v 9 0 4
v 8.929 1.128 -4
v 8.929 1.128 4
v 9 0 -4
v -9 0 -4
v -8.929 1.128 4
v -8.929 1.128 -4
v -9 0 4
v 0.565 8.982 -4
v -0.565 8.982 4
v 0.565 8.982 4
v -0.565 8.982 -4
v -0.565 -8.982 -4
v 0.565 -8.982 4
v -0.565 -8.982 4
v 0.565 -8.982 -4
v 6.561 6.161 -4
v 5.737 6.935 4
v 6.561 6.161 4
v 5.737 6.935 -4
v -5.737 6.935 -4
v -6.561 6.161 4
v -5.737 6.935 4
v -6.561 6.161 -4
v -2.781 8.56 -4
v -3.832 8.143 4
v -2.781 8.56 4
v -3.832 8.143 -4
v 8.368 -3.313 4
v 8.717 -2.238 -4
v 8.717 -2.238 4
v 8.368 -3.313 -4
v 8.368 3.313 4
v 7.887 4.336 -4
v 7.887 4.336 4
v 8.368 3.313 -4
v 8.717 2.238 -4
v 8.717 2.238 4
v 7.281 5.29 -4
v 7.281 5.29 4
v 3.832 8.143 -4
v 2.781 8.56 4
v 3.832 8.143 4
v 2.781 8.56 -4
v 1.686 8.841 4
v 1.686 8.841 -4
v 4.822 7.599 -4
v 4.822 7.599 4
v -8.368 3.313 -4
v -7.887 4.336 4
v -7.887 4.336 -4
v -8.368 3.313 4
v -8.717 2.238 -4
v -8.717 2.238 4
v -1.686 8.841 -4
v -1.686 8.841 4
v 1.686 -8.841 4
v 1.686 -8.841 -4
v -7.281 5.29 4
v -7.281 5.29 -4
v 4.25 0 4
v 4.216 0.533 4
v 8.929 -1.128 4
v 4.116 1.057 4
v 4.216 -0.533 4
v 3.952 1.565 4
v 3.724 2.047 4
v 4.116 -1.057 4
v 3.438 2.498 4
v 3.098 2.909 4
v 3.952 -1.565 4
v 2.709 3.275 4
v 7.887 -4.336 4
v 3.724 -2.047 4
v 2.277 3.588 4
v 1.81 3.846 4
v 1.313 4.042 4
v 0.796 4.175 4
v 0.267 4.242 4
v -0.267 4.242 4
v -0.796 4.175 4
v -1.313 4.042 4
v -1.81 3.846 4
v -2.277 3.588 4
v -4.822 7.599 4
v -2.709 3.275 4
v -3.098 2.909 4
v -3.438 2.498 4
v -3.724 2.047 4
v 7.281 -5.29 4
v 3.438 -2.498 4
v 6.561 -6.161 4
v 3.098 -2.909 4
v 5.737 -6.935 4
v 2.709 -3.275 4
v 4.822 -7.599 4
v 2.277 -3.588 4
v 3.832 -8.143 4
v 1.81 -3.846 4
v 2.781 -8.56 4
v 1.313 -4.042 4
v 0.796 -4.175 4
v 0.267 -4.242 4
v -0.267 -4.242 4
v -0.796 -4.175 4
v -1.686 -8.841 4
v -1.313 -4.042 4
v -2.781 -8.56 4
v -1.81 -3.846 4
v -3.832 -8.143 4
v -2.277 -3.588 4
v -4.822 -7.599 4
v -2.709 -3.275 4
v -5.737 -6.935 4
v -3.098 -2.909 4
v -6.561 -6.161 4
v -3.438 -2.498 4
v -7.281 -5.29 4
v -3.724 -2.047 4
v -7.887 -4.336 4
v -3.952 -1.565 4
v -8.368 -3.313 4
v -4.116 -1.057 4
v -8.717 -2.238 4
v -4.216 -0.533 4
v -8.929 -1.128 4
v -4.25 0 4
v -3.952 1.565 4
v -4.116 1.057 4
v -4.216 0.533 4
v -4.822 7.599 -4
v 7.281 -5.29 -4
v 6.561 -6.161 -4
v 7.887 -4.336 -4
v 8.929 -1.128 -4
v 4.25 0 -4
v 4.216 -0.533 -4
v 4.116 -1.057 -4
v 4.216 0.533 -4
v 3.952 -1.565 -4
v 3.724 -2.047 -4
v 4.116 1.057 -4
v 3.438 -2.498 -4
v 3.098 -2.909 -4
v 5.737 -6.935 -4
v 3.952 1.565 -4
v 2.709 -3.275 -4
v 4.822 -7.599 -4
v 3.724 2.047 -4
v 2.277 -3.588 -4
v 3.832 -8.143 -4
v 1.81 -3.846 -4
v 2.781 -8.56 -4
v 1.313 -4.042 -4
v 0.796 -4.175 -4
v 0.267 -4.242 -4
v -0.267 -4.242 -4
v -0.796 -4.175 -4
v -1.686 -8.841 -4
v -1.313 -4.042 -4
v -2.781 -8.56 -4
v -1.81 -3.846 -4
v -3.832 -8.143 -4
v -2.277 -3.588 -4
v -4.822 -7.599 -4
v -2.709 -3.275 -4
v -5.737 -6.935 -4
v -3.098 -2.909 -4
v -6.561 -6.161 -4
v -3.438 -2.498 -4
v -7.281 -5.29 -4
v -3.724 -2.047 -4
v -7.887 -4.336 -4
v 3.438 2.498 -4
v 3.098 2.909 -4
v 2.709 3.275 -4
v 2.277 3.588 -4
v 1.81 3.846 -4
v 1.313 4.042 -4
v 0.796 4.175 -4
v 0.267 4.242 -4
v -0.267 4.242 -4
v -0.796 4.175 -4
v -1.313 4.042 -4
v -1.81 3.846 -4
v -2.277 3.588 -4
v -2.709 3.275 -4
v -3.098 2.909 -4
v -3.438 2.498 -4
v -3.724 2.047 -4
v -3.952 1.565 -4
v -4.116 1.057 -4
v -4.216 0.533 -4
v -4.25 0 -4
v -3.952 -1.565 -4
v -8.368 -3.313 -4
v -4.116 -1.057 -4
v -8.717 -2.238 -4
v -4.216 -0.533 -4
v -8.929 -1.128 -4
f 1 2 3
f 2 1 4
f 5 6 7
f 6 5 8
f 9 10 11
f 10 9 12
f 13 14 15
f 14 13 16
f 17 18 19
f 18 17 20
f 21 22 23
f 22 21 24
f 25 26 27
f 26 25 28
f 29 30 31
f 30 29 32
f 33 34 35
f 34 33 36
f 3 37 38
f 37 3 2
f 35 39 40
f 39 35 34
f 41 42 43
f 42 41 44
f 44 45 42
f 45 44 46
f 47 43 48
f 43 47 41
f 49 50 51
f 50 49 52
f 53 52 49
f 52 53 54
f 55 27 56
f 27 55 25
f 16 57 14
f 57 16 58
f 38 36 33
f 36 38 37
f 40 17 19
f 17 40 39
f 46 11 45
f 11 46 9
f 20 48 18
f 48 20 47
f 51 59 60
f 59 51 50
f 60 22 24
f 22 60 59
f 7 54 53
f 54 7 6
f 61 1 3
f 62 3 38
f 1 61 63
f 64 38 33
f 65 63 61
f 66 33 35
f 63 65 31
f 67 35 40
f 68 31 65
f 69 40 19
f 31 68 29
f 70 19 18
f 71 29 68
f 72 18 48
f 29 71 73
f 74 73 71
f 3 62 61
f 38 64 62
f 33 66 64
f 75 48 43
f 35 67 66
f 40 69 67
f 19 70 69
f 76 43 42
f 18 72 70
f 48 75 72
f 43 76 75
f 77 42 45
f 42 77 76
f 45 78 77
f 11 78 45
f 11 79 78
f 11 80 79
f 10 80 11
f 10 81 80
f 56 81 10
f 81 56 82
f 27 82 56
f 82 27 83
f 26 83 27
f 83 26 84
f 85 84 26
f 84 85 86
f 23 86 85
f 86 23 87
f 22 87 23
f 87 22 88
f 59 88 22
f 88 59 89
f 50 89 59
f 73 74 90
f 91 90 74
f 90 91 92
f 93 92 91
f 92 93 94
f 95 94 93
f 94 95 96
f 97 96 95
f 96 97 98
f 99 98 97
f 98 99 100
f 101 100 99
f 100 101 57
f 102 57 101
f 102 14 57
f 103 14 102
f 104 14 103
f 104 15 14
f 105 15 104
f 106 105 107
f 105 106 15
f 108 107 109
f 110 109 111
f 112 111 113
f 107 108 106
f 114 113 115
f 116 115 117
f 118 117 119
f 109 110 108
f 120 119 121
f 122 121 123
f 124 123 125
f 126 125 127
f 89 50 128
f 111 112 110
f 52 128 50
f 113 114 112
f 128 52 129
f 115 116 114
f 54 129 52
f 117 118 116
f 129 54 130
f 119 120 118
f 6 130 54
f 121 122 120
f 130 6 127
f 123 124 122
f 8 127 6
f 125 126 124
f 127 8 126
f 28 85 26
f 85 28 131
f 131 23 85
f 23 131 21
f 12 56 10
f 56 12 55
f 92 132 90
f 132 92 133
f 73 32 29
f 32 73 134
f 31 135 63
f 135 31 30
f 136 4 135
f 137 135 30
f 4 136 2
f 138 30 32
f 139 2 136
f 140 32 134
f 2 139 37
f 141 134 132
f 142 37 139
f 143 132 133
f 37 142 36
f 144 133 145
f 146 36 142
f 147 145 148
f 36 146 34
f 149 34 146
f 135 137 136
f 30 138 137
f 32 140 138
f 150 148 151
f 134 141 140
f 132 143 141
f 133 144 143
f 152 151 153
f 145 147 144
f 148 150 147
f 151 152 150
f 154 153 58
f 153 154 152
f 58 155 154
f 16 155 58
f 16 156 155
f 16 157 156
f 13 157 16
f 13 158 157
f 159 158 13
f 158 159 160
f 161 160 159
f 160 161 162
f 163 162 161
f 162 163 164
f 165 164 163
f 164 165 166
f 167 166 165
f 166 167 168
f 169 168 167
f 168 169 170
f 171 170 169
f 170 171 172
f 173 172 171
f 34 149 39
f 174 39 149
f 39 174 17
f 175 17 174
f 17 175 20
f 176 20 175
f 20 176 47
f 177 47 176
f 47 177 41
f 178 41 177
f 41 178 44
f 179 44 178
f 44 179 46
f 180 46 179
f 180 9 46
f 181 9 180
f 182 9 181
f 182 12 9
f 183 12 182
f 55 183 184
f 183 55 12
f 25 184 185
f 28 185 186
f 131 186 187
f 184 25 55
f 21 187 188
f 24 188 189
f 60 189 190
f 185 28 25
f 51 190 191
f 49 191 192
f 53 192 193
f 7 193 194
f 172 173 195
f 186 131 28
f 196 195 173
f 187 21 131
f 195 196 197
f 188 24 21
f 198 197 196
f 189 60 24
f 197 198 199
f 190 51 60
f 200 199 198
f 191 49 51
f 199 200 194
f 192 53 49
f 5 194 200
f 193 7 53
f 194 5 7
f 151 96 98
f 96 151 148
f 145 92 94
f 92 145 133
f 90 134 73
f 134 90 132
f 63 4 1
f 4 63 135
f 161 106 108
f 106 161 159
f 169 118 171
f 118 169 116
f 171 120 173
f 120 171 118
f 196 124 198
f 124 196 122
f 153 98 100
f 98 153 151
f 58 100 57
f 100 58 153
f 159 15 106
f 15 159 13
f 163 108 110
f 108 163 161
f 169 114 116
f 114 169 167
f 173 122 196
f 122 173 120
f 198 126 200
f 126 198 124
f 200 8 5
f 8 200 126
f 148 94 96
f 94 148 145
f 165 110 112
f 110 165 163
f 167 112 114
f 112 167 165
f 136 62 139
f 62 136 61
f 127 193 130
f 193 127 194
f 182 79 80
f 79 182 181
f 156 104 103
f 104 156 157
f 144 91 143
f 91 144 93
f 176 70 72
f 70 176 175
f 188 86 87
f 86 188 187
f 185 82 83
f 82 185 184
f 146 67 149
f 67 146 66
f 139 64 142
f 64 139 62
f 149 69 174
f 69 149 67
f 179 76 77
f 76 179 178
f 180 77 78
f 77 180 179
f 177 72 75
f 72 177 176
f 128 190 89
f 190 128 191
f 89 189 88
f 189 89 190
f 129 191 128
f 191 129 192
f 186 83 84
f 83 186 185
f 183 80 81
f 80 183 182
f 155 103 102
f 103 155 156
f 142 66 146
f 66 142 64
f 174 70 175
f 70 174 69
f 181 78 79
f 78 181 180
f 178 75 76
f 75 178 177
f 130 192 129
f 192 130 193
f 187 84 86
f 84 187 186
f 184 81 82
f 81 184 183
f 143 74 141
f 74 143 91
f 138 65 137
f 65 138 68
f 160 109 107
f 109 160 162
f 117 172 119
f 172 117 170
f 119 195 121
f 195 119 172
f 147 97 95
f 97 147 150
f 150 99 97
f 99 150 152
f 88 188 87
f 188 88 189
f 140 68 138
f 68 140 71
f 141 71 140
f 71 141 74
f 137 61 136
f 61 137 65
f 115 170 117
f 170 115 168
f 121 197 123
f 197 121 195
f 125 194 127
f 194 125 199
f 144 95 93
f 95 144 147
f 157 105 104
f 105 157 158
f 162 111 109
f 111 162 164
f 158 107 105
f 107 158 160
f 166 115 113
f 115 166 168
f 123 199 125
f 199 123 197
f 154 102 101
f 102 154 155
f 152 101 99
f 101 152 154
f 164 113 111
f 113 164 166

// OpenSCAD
$fn = 50;


difference() {
	union() {
		translate(v = [0, 0, -4.0000000000]) {
			cylinder(h = 8, r = 9.0000000000);
		}
	}
	union() {
		translate(v = [0, 0, -100.0000000000]) {
			cylinder(h = 200, r = 4.2500000000);
		}
	}
}
